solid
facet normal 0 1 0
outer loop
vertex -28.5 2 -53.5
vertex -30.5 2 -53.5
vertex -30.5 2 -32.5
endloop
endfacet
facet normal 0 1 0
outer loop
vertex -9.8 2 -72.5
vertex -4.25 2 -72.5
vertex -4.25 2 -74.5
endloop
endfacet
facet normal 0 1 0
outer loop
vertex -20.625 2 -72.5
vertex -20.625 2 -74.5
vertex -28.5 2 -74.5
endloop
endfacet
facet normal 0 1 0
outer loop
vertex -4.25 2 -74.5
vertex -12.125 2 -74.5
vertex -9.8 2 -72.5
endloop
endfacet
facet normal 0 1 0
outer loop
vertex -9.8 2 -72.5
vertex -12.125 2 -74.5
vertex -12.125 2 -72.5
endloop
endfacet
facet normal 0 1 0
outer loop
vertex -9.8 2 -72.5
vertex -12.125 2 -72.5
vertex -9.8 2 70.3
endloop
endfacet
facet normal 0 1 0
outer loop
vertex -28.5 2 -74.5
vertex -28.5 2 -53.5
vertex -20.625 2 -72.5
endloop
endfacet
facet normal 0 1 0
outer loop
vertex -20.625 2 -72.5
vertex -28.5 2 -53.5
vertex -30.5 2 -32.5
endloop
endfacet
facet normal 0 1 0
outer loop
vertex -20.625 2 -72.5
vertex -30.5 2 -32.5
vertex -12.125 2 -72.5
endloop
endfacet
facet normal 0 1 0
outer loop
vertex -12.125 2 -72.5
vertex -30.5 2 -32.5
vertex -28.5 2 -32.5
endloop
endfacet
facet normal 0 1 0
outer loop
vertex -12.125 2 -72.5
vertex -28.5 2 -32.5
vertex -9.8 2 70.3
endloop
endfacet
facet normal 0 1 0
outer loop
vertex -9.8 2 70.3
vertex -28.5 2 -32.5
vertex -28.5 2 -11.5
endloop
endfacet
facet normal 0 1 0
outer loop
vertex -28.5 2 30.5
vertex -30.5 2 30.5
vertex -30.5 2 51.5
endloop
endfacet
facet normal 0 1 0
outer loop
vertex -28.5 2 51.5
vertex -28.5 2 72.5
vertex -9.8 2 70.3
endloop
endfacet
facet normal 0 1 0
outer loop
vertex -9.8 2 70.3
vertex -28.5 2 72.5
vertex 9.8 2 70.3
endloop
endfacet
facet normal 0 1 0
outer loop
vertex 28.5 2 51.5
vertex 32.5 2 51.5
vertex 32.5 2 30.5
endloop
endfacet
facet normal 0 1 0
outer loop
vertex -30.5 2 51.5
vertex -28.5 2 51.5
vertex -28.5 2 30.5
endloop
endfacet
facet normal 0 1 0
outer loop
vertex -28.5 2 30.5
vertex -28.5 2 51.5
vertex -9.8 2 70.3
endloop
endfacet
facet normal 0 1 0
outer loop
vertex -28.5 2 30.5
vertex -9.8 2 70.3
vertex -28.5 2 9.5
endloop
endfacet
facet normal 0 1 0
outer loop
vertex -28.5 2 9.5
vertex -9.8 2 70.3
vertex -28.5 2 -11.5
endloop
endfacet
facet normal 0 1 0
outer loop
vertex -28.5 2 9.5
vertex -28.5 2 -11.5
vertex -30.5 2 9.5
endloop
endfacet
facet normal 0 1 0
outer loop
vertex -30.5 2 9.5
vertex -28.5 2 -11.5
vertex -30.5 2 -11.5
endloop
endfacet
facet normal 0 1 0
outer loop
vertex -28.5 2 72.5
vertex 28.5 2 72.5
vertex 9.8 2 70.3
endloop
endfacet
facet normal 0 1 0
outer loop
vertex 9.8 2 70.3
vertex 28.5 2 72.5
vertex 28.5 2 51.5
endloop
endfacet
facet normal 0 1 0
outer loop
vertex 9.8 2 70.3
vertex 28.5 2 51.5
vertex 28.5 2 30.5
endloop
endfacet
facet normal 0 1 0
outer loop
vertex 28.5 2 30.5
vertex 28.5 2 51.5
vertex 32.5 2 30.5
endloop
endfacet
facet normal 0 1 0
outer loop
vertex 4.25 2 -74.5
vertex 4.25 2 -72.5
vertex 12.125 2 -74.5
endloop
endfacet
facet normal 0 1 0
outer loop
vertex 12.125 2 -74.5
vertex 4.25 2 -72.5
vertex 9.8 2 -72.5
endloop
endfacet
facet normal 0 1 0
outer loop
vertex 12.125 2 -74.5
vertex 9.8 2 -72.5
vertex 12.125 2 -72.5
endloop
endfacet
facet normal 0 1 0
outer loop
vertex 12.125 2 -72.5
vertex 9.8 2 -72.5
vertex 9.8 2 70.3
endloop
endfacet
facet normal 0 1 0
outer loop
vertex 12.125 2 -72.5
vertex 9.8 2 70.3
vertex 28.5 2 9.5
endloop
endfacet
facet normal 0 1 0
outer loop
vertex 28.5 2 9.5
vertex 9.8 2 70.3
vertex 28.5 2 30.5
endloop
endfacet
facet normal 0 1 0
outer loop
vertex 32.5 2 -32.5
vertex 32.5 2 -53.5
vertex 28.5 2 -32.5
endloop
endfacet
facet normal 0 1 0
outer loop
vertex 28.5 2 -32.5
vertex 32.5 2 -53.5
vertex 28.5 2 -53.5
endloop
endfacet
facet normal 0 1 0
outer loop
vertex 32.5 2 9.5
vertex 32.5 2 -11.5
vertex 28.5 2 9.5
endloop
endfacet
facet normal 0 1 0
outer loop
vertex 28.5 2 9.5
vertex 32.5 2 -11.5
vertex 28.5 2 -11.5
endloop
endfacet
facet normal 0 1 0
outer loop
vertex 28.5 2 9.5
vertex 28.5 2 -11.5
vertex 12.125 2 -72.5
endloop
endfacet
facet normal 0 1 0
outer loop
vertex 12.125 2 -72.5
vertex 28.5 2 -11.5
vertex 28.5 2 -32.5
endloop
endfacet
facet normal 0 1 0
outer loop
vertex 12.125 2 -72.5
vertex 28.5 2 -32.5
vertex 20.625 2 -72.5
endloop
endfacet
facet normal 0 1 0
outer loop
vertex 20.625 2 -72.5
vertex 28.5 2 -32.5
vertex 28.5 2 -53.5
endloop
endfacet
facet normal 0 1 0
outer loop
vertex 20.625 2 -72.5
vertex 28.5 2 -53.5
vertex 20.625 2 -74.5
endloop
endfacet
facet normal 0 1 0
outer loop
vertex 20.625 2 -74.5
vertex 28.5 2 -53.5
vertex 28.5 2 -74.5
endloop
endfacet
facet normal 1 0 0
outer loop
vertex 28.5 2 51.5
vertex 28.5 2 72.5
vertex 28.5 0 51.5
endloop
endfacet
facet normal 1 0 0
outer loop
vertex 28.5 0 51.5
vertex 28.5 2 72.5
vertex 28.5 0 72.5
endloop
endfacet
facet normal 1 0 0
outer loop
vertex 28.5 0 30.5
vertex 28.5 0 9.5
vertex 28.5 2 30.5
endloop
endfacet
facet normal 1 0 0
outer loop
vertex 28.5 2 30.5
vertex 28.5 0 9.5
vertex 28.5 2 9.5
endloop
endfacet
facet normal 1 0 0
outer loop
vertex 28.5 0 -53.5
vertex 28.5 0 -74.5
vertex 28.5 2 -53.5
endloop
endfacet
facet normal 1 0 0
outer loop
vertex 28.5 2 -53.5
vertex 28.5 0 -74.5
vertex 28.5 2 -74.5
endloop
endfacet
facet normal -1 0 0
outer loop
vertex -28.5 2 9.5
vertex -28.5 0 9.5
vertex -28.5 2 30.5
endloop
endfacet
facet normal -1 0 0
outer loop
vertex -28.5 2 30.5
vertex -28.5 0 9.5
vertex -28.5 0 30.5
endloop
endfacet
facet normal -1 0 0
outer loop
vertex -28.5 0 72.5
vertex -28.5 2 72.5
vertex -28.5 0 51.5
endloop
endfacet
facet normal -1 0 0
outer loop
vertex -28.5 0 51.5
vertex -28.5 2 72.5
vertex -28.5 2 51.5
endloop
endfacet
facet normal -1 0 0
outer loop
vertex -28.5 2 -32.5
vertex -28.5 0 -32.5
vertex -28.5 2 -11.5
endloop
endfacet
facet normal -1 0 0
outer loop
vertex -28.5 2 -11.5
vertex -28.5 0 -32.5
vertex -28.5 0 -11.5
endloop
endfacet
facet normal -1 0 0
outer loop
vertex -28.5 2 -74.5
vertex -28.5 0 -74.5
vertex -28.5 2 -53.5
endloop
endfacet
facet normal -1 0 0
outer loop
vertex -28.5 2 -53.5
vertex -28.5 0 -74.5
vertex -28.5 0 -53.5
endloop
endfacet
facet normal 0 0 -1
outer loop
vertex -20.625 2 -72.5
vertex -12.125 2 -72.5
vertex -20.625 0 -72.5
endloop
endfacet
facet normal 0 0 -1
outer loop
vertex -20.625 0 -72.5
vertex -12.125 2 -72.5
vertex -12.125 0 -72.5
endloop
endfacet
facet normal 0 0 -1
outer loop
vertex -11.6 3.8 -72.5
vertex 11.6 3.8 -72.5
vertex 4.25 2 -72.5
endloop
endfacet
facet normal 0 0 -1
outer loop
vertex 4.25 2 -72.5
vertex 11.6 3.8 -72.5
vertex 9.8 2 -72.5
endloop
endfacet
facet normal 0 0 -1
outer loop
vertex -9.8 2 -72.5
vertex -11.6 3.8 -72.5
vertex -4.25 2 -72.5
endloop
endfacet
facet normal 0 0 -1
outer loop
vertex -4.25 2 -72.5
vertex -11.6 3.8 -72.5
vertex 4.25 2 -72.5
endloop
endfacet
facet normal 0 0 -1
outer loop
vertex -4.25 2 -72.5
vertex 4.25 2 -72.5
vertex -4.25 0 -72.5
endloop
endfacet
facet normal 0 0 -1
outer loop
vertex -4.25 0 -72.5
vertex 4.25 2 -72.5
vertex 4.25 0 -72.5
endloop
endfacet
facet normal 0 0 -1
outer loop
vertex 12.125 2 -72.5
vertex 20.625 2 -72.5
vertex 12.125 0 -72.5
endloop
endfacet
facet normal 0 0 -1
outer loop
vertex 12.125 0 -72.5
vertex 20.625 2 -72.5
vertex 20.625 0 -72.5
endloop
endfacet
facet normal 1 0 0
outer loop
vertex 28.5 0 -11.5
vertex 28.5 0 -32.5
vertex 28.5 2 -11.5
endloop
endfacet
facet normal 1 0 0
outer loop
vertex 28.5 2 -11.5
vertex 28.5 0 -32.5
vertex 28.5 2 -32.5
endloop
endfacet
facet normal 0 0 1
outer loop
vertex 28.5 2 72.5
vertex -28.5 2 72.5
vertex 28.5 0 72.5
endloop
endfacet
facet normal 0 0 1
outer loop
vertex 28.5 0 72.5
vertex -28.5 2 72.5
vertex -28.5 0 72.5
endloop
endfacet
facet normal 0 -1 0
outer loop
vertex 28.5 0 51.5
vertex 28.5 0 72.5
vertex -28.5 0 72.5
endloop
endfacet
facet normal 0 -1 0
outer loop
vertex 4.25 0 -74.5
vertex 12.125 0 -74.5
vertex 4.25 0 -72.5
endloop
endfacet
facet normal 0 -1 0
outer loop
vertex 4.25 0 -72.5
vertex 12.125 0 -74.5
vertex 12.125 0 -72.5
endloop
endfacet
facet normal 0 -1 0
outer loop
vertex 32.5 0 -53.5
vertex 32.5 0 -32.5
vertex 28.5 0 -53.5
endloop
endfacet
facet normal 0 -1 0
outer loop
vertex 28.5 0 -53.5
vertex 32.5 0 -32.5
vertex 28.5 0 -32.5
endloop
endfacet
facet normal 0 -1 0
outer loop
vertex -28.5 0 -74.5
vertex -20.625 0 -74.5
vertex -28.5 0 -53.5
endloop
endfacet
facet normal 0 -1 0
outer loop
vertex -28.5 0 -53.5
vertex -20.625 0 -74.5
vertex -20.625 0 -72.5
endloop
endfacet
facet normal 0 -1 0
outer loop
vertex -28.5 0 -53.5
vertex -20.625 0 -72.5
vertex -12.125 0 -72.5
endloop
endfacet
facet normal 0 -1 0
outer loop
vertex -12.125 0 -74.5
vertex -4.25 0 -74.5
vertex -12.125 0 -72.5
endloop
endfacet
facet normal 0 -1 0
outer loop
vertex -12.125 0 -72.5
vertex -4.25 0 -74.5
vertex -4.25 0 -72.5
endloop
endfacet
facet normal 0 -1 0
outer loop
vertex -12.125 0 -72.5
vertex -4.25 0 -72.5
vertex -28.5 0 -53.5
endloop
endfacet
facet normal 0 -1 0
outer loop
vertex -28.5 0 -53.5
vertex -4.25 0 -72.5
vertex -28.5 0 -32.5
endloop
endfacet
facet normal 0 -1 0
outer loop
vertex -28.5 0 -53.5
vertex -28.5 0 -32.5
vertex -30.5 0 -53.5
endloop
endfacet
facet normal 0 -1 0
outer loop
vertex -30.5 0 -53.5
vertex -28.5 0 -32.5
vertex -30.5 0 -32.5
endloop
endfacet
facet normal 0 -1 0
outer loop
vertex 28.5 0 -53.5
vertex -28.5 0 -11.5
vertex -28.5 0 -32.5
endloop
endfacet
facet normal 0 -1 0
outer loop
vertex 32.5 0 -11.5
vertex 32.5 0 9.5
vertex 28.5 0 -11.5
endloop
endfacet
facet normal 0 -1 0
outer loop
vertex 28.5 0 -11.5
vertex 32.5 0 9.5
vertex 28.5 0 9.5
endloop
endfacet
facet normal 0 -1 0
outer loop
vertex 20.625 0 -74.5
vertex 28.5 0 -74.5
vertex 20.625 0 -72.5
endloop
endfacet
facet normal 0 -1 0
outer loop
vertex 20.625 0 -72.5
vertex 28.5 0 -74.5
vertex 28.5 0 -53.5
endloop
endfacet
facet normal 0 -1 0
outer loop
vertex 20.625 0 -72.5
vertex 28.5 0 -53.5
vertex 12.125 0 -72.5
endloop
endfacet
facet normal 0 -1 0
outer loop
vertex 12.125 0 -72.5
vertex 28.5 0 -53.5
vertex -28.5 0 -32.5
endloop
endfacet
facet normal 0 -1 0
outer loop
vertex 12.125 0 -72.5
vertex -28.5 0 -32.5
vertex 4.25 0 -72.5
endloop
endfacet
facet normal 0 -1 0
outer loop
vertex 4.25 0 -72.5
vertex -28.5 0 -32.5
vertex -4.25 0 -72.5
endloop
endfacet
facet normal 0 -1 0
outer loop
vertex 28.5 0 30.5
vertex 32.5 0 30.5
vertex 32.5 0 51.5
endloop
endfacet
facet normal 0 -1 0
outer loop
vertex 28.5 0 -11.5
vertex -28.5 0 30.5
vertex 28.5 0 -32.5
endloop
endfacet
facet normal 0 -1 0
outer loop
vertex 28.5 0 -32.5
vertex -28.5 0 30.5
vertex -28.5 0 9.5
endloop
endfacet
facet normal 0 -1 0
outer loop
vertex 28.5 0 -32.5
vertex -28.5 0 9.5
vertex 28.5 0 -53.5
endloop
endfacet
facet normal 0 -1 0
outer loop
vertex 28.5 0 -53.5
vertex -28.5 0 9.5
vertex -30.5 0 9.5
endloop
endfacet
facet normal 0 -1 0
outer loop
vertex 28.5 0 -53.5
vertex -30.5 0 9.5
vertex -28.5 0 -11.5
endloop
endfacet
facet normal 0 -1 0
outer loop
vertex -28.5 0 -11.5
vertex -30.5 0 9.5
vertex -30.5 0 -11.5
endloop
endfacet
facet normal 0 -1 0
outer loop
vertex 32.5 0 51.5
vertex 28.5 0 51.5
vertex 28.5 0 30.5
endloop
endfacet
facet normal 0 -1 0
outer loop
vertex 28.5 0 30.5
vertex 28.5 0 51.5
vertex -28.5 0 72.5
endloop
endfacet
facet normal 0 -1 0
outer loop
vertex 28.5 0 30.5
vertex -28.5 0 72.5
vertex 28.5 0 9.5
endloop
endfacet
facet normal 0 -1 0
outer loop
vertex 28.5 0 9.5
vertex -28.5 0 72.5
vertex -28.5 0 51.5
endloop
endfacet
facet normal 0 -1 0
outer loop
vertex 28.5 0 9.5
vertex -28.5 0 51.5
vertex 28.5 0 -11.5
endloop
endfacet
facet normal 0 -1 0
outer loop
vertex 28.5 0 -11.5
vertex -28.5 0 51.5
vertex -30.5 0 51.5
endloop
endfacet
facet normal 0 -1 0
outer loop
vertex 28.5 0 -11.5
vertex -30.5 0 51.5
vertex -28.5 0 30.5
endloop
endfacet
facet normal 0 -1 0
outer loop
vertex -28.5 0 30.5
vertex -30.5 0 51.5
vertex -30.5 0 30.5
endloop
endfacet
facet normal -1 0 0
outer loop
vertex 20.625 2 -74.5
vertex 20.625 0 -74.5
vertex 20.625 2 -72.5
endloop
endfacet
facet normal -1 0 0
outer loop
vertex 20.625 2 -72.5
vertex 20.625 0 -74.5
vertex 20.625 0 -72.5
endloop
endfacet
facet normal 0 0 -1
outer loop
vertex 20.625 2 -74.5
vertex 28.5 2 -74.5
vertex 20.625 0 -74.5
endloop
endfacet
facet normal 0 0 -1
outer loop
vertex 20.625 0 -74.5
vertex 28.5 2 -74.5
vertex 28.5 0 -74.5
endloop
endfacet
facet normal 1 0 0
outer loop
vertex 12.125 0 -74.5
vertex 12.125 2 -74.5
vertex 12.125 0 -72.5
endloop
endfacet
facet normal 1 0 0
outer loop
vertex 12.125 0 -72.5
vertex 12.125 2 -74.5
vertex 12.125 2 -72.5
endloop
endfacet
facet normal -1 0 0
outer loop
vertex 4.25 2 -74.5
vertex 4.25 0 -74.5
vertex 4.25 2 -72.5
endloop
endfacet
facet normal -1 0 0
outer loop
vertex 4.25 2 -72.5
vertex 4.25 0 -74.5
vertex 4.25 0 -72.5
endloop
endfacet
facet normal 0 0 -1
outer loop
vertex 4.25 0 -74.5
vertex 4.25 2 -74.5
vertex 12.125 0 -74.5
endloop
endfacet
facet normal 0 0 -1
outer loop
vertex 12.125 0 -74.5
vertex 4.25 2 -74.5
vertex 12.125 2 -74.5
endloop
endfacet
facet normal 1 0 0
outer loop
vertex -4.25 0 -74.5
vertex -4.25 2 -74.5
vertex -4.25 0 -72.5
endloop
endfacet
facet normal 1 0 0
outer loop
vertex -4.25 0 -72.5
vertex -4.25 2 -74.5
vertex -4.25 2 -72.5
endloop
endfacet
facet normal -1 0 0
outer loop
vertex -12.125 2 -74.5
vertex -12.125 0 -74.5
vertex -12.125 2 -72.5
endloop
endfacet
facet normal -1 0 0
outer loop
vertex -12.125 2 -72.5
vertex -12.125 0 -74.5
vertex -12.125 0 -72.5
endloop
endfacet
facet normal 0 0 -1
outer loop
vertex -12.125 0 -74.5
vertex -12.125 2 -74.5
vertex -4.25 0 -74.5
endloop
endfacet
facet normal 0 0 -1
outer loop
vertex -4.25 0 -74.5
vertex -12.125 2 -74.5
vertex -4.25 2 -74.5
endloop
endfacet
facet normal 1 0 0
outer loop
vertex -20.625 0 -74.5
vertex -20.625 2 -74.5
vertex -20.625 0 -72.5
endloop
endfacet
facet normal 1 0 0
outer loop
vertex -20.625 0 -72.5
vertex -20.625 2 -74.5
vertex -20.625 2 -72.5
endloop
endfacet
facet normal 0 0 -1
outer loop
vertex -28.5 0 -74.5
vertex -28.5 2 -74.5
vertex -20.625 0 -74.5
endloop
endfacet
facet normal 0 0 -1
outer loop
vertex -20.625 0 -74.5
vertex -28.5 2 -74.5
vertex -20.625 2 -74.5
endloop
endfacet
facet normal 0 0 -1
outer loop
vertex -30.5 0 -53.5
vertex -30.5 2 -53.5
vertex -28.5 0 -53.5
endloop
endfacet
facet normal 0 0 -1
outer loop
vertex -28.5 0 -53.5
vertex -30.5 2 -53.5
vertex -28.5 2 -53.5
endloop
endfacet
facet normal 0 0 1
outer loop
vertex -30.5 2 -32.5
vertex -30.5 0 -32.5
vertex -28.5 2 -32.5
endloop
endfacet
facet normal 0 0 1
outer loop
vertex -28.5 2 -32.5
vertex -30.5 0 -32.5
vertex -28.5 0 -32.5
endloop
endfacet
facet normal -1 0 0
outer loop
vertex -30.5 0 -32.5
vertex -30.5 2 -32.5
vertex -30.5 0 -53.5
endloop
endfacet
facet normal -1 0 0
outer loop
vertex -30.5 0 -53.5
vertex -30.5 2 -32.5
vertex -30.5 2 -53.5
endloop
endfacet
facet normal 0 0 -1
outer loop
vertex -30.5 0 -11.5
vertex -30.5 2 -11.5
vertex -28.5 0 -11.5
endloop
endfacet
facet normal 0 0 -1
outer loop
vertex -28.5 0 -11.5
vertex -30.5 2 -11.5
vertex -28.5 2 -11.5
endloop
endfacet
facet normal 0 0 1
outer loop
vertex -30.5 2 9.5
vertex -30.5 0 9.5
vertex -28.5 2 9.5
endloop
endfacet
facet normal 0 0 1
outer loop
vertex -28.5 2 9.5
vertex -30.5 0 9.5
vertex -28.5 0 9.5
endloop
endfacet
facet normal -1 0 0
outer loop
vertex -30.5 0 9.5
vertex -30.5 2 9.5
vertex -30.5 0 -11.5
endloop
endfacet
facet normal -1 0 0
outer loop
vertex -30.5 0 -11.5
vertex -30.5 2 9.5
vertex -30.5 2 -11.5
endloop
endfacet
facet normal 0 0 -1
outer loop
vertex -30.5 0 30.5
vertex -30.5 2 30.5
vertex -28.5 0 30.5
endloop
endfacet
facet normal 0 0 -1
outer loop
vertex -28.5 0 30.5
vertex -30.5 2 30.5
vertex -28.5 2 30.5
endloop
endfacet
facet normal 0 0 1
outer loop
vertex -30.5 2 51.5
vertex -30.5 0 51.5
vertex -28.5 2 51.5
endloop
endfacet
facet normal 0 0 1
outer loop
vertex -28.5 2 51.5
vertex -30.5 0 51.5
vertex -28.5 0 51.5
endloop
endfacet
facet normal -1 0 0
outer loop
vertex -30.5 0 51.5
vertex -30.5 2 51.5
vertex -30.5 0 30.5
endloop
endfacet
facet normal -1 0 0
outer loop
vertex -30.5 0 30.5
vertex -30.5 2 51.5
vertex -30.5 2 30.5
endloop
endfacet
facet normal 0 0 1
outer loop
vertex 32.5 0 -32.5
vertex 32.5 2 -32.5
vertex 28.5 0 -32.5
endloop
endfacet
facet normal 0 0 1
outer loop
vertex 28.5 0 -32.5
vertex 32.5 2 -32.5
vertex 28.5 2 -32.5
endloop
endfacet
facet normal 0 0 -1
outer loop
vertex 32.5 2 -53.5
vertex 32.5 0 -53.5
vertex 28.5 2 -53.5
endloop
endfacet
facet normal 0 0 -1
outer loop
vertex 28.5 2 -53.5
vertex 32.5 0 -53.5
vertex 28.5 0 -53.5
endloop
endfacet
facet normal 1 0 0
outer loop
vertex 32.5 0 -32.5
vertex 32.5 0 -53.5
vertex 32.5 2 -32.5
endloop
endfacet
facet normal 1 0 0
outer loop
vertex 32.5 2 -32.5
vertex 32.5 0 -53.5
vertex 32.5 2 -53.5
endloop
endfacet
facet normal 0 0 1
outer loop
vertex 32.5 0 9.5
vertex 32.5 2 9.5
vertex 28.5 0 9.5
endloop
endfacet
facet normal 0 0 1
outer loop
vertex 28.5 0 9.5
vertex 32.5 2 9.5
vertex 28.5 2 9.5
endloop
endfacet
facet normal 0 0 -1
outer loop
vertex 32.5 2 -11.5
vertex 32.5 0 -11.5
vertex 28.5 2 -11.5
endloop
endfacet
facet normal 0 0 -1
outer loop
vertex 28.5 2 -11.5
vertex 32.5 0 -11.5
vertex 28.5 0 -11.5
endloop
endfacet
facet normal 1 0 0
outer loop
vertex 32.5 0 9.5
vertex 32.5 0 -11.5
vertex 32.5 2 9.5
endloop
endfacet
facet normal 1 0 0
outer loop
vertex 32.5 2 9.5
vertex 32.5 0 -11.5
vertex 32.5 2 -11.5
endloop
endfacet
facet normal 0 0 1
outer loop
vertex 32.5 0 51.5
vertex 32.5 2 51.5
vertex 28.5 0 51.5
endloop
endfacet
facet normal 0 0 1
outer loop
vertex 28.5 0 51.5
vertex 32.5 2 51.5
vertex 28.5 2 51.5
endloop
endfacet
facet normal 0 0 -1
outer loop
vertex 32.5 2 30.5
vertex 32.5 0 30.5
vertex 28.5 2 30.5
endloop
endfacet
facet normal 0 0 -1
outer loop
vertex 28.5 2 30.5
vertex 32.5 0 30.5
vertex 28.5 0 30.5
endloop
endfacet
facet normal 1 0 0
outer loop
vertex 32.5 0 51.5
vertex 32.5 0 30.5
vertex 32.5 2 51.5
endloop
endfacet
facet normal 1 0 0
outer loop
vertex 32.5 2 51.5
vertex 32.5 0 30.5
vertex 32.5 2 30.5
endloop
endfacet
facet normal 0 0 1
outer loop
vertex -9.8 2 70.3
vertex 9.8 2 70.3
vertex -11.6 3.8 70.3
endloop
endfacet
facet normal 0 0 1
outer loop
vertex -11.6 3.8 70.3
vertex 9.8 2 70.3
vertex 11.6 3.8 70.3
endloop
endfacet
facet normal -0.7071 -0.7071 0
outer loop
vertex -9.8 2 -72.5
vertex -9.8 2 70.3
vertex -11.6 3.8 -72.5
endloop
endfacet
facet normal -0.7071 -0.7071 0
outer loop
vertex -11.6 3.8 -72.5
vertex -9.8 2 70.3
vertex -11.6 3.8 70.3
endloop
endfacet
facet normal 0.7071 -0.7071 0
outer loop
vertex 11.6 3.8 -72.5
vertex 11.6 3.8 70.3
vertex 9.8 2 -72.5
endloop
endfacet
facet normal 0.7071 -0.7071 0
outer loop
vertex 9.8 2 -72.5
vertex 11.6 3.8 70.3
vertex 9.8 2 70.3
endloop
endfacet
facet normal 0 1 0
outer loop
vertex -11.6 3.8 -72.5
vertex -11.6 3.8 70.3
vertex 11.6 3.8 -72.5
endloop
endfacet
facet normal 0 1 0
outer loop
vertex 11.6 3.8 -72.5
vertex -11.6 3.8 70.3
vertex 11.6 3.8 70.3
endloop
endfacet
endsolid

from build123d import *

# Parameters (mm, degrees)
SKETCH_4_W      = 57
SKETCH_4_H      = 145
EXTRUDE_1_DEPTH = 2
SKETCH_5_W      = 7.875
SKETCH_5_H      = 2
EXTRUDE_2_DEPTH = 2
SKETCH_6_W      = 21
SKETCH_6_H      = 2
EXTRUDE_3_DEPTH = 2
EXTRUDE_START   = -57
SKETCH_6_2_W    = 21
SKETCH_6_2_H    = 2
EXTRUDE_4_DEPTH = 4
EXTRUDE_START_2 = -2.2
EXTRUDE_5_DEPTH = 142.8


with BuildPart() as part:
    # 草图4 → 凸台-拉伸1 (new body)
    with BuildSketch(Plane(origin=(0, 0, 0), x_dir=(1, 0, 0), z_dir=(0, 1, 0))):
        Rectangle(SKETCH_4_W, SKETCH_4_H)
    extrude(amount=EXTRUDE_1_DEPTH)

    # 草图5 → 凸台-拉伸2 (add)
    with BuildSketch(Plane(origin=(0, 0, -72.5), x_dir=(-1, 0, 0), z_dir=(0, 0, -1))):
        with Locations((-24.5625, 1)):
            Rectangle(SKETCH_5_W, SKETCH_5_H)
        with Locations((-8.1875, 1)):
            Rectangle(SKETCH_5_W, SKETCH_5_H)
        with Locations((8.1875, 1)):
            Rectangle(SKETCH_5_W, SKETCH_5_H)
        with Locations((24.5625, 1)):
            Rectangle(SKETCH_5_W, SKETCH_5_H)
    extrude(amount=EXTRUDE_2_DEPTH)

    # 草图6 → 凸台-拉伸3 (add)
    with BuildSketch(Plane.ZY.offset(28.5)):
        with Locations((-43, 1)):
            Rectangle(SKETCH_6_W, SKETCH_6_H)
        with Locations((-1, 1)):
            Rectangle(SKETCH_6_W, SKETCH_6_H)
        with Locations((41, 1)):
            Rectangle(SKETCH_6_W, SKETCH_6_H)
    extrude(amount=EXTRUDE_3_DEPTH)

    # 草图6<2> → 凸台-拉伸4 (add)
    with BuildSketch(Plane.ZY.offset(28.5).offset(EXTRUDE_START)):
        with Locations((-43, 1)):
            Rectangle(SKETCH_6_2_W, SKETCH_6_2_H)
        with Locations((-1, 1)):
            Rectangle(SKETCH_6_2_W, SKETCH_6_2_H)
        with Locations((41, 1)):
            Rectangle(SKETCH_6_2_W, SKETCH_6_2_H)
    extrude(amount=-EXTRUDE_4_DEPTH)

    # 草图8 → 凸台-拉伸5 (add)
    with BuildSketch(Plane.XY.offset(72.5).offset(EXTRUDE_START_2)):
        Polygon((-11.6, 3.8), (-9.8, 2), (9.8, 2), (11.6, 3.8), (9.8, 3.8), (-9.8, 3.8), align=None)
    extrude(amount=-EXTRUDE_5_DEPTH)


solid = part.part
